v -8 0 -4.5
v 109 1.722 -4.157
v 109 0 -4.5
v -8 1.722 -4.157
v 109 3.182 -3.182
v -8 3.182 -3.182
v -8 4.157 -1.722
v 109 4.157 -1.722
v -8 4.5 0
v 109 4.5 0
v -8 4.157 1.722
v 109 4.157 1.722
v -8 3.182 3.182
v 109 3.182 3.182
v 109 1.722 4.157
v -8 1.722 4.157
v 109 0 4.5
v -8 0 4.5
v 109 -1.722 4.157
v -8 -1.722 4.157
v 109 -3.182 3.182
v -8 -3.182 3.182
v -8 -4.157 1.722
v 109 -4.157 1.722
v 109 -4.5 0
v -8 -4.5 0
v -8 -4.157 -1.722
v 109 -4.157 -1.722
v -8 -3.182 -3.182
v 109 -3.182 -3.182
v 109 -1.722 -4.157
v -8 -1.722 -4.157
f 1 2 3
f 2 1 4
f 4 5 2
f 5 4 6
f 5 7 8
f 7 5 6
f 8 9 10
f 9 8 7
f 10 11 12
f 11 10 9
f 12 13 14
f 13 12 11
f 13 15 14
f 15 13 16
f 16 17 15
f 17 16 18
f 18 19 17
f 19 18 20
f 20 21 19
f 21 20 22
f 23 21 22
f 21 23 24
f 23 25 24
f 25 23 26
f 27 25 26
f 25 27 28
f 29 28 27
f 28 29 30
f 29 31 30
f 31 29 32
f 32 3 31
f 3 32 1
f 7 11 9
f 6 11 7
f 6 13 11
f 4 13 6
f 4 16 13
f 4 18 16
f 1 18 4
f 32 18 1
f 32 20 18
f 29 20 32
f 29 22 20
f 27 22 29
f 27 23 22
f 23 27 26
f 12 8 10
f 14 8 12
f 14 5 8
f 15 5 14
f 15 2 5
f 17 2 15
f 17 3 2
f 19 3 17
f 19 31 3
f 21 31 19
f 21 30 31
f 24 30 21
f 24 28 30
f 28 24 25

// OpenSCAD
// file: axis_stopper.scad
include <vars.scad>

module axis_stopper()
{
    translate([0,0,0])
    rotate([0,90,0])
    difference()
    {
        cylinder(h = SIDE_WIDTH, r = AXIS_R + SIDE_WIDTH/2);
        translate([0,0,-SIDE_WIDTH])
        cylinder(h = SIDE_WIDTH * 3, r = AXIS_R - RESERVE_R, $fn = 16);
    }
}

axis_stopper();
// file: vars.scad
SIDE_WIDTH = 8;
RESERVE_V = 10;
RESERVE_H = 15;
RESERVE_R = 0.5;
OUTER_R = 100;
INNER_R = 25;
SPOOL_WIDTH = 70;
AXIS_R = 5;
// main file
include <vars.scad>
use <axis_stopper.scad>

module axis()
{
    translate([-SIDE_WIDTH,0,0])
    rotate([0,90,0])
    cylinder(h = SIDE_WIDTH * 4 + SPOOL_WIDTH + RESERVE_H, r = AXIS_R - RESERVE_R, $fn = 16);
}

color("Blue")
axis();

translate([-SIDE_WIDTH,0,0])
%axis_stopper();

translate([SIDE_WIDTH * 2 + SPOOL_WIDTH + RESERVE_H,0,0])
%axis_stopper();
